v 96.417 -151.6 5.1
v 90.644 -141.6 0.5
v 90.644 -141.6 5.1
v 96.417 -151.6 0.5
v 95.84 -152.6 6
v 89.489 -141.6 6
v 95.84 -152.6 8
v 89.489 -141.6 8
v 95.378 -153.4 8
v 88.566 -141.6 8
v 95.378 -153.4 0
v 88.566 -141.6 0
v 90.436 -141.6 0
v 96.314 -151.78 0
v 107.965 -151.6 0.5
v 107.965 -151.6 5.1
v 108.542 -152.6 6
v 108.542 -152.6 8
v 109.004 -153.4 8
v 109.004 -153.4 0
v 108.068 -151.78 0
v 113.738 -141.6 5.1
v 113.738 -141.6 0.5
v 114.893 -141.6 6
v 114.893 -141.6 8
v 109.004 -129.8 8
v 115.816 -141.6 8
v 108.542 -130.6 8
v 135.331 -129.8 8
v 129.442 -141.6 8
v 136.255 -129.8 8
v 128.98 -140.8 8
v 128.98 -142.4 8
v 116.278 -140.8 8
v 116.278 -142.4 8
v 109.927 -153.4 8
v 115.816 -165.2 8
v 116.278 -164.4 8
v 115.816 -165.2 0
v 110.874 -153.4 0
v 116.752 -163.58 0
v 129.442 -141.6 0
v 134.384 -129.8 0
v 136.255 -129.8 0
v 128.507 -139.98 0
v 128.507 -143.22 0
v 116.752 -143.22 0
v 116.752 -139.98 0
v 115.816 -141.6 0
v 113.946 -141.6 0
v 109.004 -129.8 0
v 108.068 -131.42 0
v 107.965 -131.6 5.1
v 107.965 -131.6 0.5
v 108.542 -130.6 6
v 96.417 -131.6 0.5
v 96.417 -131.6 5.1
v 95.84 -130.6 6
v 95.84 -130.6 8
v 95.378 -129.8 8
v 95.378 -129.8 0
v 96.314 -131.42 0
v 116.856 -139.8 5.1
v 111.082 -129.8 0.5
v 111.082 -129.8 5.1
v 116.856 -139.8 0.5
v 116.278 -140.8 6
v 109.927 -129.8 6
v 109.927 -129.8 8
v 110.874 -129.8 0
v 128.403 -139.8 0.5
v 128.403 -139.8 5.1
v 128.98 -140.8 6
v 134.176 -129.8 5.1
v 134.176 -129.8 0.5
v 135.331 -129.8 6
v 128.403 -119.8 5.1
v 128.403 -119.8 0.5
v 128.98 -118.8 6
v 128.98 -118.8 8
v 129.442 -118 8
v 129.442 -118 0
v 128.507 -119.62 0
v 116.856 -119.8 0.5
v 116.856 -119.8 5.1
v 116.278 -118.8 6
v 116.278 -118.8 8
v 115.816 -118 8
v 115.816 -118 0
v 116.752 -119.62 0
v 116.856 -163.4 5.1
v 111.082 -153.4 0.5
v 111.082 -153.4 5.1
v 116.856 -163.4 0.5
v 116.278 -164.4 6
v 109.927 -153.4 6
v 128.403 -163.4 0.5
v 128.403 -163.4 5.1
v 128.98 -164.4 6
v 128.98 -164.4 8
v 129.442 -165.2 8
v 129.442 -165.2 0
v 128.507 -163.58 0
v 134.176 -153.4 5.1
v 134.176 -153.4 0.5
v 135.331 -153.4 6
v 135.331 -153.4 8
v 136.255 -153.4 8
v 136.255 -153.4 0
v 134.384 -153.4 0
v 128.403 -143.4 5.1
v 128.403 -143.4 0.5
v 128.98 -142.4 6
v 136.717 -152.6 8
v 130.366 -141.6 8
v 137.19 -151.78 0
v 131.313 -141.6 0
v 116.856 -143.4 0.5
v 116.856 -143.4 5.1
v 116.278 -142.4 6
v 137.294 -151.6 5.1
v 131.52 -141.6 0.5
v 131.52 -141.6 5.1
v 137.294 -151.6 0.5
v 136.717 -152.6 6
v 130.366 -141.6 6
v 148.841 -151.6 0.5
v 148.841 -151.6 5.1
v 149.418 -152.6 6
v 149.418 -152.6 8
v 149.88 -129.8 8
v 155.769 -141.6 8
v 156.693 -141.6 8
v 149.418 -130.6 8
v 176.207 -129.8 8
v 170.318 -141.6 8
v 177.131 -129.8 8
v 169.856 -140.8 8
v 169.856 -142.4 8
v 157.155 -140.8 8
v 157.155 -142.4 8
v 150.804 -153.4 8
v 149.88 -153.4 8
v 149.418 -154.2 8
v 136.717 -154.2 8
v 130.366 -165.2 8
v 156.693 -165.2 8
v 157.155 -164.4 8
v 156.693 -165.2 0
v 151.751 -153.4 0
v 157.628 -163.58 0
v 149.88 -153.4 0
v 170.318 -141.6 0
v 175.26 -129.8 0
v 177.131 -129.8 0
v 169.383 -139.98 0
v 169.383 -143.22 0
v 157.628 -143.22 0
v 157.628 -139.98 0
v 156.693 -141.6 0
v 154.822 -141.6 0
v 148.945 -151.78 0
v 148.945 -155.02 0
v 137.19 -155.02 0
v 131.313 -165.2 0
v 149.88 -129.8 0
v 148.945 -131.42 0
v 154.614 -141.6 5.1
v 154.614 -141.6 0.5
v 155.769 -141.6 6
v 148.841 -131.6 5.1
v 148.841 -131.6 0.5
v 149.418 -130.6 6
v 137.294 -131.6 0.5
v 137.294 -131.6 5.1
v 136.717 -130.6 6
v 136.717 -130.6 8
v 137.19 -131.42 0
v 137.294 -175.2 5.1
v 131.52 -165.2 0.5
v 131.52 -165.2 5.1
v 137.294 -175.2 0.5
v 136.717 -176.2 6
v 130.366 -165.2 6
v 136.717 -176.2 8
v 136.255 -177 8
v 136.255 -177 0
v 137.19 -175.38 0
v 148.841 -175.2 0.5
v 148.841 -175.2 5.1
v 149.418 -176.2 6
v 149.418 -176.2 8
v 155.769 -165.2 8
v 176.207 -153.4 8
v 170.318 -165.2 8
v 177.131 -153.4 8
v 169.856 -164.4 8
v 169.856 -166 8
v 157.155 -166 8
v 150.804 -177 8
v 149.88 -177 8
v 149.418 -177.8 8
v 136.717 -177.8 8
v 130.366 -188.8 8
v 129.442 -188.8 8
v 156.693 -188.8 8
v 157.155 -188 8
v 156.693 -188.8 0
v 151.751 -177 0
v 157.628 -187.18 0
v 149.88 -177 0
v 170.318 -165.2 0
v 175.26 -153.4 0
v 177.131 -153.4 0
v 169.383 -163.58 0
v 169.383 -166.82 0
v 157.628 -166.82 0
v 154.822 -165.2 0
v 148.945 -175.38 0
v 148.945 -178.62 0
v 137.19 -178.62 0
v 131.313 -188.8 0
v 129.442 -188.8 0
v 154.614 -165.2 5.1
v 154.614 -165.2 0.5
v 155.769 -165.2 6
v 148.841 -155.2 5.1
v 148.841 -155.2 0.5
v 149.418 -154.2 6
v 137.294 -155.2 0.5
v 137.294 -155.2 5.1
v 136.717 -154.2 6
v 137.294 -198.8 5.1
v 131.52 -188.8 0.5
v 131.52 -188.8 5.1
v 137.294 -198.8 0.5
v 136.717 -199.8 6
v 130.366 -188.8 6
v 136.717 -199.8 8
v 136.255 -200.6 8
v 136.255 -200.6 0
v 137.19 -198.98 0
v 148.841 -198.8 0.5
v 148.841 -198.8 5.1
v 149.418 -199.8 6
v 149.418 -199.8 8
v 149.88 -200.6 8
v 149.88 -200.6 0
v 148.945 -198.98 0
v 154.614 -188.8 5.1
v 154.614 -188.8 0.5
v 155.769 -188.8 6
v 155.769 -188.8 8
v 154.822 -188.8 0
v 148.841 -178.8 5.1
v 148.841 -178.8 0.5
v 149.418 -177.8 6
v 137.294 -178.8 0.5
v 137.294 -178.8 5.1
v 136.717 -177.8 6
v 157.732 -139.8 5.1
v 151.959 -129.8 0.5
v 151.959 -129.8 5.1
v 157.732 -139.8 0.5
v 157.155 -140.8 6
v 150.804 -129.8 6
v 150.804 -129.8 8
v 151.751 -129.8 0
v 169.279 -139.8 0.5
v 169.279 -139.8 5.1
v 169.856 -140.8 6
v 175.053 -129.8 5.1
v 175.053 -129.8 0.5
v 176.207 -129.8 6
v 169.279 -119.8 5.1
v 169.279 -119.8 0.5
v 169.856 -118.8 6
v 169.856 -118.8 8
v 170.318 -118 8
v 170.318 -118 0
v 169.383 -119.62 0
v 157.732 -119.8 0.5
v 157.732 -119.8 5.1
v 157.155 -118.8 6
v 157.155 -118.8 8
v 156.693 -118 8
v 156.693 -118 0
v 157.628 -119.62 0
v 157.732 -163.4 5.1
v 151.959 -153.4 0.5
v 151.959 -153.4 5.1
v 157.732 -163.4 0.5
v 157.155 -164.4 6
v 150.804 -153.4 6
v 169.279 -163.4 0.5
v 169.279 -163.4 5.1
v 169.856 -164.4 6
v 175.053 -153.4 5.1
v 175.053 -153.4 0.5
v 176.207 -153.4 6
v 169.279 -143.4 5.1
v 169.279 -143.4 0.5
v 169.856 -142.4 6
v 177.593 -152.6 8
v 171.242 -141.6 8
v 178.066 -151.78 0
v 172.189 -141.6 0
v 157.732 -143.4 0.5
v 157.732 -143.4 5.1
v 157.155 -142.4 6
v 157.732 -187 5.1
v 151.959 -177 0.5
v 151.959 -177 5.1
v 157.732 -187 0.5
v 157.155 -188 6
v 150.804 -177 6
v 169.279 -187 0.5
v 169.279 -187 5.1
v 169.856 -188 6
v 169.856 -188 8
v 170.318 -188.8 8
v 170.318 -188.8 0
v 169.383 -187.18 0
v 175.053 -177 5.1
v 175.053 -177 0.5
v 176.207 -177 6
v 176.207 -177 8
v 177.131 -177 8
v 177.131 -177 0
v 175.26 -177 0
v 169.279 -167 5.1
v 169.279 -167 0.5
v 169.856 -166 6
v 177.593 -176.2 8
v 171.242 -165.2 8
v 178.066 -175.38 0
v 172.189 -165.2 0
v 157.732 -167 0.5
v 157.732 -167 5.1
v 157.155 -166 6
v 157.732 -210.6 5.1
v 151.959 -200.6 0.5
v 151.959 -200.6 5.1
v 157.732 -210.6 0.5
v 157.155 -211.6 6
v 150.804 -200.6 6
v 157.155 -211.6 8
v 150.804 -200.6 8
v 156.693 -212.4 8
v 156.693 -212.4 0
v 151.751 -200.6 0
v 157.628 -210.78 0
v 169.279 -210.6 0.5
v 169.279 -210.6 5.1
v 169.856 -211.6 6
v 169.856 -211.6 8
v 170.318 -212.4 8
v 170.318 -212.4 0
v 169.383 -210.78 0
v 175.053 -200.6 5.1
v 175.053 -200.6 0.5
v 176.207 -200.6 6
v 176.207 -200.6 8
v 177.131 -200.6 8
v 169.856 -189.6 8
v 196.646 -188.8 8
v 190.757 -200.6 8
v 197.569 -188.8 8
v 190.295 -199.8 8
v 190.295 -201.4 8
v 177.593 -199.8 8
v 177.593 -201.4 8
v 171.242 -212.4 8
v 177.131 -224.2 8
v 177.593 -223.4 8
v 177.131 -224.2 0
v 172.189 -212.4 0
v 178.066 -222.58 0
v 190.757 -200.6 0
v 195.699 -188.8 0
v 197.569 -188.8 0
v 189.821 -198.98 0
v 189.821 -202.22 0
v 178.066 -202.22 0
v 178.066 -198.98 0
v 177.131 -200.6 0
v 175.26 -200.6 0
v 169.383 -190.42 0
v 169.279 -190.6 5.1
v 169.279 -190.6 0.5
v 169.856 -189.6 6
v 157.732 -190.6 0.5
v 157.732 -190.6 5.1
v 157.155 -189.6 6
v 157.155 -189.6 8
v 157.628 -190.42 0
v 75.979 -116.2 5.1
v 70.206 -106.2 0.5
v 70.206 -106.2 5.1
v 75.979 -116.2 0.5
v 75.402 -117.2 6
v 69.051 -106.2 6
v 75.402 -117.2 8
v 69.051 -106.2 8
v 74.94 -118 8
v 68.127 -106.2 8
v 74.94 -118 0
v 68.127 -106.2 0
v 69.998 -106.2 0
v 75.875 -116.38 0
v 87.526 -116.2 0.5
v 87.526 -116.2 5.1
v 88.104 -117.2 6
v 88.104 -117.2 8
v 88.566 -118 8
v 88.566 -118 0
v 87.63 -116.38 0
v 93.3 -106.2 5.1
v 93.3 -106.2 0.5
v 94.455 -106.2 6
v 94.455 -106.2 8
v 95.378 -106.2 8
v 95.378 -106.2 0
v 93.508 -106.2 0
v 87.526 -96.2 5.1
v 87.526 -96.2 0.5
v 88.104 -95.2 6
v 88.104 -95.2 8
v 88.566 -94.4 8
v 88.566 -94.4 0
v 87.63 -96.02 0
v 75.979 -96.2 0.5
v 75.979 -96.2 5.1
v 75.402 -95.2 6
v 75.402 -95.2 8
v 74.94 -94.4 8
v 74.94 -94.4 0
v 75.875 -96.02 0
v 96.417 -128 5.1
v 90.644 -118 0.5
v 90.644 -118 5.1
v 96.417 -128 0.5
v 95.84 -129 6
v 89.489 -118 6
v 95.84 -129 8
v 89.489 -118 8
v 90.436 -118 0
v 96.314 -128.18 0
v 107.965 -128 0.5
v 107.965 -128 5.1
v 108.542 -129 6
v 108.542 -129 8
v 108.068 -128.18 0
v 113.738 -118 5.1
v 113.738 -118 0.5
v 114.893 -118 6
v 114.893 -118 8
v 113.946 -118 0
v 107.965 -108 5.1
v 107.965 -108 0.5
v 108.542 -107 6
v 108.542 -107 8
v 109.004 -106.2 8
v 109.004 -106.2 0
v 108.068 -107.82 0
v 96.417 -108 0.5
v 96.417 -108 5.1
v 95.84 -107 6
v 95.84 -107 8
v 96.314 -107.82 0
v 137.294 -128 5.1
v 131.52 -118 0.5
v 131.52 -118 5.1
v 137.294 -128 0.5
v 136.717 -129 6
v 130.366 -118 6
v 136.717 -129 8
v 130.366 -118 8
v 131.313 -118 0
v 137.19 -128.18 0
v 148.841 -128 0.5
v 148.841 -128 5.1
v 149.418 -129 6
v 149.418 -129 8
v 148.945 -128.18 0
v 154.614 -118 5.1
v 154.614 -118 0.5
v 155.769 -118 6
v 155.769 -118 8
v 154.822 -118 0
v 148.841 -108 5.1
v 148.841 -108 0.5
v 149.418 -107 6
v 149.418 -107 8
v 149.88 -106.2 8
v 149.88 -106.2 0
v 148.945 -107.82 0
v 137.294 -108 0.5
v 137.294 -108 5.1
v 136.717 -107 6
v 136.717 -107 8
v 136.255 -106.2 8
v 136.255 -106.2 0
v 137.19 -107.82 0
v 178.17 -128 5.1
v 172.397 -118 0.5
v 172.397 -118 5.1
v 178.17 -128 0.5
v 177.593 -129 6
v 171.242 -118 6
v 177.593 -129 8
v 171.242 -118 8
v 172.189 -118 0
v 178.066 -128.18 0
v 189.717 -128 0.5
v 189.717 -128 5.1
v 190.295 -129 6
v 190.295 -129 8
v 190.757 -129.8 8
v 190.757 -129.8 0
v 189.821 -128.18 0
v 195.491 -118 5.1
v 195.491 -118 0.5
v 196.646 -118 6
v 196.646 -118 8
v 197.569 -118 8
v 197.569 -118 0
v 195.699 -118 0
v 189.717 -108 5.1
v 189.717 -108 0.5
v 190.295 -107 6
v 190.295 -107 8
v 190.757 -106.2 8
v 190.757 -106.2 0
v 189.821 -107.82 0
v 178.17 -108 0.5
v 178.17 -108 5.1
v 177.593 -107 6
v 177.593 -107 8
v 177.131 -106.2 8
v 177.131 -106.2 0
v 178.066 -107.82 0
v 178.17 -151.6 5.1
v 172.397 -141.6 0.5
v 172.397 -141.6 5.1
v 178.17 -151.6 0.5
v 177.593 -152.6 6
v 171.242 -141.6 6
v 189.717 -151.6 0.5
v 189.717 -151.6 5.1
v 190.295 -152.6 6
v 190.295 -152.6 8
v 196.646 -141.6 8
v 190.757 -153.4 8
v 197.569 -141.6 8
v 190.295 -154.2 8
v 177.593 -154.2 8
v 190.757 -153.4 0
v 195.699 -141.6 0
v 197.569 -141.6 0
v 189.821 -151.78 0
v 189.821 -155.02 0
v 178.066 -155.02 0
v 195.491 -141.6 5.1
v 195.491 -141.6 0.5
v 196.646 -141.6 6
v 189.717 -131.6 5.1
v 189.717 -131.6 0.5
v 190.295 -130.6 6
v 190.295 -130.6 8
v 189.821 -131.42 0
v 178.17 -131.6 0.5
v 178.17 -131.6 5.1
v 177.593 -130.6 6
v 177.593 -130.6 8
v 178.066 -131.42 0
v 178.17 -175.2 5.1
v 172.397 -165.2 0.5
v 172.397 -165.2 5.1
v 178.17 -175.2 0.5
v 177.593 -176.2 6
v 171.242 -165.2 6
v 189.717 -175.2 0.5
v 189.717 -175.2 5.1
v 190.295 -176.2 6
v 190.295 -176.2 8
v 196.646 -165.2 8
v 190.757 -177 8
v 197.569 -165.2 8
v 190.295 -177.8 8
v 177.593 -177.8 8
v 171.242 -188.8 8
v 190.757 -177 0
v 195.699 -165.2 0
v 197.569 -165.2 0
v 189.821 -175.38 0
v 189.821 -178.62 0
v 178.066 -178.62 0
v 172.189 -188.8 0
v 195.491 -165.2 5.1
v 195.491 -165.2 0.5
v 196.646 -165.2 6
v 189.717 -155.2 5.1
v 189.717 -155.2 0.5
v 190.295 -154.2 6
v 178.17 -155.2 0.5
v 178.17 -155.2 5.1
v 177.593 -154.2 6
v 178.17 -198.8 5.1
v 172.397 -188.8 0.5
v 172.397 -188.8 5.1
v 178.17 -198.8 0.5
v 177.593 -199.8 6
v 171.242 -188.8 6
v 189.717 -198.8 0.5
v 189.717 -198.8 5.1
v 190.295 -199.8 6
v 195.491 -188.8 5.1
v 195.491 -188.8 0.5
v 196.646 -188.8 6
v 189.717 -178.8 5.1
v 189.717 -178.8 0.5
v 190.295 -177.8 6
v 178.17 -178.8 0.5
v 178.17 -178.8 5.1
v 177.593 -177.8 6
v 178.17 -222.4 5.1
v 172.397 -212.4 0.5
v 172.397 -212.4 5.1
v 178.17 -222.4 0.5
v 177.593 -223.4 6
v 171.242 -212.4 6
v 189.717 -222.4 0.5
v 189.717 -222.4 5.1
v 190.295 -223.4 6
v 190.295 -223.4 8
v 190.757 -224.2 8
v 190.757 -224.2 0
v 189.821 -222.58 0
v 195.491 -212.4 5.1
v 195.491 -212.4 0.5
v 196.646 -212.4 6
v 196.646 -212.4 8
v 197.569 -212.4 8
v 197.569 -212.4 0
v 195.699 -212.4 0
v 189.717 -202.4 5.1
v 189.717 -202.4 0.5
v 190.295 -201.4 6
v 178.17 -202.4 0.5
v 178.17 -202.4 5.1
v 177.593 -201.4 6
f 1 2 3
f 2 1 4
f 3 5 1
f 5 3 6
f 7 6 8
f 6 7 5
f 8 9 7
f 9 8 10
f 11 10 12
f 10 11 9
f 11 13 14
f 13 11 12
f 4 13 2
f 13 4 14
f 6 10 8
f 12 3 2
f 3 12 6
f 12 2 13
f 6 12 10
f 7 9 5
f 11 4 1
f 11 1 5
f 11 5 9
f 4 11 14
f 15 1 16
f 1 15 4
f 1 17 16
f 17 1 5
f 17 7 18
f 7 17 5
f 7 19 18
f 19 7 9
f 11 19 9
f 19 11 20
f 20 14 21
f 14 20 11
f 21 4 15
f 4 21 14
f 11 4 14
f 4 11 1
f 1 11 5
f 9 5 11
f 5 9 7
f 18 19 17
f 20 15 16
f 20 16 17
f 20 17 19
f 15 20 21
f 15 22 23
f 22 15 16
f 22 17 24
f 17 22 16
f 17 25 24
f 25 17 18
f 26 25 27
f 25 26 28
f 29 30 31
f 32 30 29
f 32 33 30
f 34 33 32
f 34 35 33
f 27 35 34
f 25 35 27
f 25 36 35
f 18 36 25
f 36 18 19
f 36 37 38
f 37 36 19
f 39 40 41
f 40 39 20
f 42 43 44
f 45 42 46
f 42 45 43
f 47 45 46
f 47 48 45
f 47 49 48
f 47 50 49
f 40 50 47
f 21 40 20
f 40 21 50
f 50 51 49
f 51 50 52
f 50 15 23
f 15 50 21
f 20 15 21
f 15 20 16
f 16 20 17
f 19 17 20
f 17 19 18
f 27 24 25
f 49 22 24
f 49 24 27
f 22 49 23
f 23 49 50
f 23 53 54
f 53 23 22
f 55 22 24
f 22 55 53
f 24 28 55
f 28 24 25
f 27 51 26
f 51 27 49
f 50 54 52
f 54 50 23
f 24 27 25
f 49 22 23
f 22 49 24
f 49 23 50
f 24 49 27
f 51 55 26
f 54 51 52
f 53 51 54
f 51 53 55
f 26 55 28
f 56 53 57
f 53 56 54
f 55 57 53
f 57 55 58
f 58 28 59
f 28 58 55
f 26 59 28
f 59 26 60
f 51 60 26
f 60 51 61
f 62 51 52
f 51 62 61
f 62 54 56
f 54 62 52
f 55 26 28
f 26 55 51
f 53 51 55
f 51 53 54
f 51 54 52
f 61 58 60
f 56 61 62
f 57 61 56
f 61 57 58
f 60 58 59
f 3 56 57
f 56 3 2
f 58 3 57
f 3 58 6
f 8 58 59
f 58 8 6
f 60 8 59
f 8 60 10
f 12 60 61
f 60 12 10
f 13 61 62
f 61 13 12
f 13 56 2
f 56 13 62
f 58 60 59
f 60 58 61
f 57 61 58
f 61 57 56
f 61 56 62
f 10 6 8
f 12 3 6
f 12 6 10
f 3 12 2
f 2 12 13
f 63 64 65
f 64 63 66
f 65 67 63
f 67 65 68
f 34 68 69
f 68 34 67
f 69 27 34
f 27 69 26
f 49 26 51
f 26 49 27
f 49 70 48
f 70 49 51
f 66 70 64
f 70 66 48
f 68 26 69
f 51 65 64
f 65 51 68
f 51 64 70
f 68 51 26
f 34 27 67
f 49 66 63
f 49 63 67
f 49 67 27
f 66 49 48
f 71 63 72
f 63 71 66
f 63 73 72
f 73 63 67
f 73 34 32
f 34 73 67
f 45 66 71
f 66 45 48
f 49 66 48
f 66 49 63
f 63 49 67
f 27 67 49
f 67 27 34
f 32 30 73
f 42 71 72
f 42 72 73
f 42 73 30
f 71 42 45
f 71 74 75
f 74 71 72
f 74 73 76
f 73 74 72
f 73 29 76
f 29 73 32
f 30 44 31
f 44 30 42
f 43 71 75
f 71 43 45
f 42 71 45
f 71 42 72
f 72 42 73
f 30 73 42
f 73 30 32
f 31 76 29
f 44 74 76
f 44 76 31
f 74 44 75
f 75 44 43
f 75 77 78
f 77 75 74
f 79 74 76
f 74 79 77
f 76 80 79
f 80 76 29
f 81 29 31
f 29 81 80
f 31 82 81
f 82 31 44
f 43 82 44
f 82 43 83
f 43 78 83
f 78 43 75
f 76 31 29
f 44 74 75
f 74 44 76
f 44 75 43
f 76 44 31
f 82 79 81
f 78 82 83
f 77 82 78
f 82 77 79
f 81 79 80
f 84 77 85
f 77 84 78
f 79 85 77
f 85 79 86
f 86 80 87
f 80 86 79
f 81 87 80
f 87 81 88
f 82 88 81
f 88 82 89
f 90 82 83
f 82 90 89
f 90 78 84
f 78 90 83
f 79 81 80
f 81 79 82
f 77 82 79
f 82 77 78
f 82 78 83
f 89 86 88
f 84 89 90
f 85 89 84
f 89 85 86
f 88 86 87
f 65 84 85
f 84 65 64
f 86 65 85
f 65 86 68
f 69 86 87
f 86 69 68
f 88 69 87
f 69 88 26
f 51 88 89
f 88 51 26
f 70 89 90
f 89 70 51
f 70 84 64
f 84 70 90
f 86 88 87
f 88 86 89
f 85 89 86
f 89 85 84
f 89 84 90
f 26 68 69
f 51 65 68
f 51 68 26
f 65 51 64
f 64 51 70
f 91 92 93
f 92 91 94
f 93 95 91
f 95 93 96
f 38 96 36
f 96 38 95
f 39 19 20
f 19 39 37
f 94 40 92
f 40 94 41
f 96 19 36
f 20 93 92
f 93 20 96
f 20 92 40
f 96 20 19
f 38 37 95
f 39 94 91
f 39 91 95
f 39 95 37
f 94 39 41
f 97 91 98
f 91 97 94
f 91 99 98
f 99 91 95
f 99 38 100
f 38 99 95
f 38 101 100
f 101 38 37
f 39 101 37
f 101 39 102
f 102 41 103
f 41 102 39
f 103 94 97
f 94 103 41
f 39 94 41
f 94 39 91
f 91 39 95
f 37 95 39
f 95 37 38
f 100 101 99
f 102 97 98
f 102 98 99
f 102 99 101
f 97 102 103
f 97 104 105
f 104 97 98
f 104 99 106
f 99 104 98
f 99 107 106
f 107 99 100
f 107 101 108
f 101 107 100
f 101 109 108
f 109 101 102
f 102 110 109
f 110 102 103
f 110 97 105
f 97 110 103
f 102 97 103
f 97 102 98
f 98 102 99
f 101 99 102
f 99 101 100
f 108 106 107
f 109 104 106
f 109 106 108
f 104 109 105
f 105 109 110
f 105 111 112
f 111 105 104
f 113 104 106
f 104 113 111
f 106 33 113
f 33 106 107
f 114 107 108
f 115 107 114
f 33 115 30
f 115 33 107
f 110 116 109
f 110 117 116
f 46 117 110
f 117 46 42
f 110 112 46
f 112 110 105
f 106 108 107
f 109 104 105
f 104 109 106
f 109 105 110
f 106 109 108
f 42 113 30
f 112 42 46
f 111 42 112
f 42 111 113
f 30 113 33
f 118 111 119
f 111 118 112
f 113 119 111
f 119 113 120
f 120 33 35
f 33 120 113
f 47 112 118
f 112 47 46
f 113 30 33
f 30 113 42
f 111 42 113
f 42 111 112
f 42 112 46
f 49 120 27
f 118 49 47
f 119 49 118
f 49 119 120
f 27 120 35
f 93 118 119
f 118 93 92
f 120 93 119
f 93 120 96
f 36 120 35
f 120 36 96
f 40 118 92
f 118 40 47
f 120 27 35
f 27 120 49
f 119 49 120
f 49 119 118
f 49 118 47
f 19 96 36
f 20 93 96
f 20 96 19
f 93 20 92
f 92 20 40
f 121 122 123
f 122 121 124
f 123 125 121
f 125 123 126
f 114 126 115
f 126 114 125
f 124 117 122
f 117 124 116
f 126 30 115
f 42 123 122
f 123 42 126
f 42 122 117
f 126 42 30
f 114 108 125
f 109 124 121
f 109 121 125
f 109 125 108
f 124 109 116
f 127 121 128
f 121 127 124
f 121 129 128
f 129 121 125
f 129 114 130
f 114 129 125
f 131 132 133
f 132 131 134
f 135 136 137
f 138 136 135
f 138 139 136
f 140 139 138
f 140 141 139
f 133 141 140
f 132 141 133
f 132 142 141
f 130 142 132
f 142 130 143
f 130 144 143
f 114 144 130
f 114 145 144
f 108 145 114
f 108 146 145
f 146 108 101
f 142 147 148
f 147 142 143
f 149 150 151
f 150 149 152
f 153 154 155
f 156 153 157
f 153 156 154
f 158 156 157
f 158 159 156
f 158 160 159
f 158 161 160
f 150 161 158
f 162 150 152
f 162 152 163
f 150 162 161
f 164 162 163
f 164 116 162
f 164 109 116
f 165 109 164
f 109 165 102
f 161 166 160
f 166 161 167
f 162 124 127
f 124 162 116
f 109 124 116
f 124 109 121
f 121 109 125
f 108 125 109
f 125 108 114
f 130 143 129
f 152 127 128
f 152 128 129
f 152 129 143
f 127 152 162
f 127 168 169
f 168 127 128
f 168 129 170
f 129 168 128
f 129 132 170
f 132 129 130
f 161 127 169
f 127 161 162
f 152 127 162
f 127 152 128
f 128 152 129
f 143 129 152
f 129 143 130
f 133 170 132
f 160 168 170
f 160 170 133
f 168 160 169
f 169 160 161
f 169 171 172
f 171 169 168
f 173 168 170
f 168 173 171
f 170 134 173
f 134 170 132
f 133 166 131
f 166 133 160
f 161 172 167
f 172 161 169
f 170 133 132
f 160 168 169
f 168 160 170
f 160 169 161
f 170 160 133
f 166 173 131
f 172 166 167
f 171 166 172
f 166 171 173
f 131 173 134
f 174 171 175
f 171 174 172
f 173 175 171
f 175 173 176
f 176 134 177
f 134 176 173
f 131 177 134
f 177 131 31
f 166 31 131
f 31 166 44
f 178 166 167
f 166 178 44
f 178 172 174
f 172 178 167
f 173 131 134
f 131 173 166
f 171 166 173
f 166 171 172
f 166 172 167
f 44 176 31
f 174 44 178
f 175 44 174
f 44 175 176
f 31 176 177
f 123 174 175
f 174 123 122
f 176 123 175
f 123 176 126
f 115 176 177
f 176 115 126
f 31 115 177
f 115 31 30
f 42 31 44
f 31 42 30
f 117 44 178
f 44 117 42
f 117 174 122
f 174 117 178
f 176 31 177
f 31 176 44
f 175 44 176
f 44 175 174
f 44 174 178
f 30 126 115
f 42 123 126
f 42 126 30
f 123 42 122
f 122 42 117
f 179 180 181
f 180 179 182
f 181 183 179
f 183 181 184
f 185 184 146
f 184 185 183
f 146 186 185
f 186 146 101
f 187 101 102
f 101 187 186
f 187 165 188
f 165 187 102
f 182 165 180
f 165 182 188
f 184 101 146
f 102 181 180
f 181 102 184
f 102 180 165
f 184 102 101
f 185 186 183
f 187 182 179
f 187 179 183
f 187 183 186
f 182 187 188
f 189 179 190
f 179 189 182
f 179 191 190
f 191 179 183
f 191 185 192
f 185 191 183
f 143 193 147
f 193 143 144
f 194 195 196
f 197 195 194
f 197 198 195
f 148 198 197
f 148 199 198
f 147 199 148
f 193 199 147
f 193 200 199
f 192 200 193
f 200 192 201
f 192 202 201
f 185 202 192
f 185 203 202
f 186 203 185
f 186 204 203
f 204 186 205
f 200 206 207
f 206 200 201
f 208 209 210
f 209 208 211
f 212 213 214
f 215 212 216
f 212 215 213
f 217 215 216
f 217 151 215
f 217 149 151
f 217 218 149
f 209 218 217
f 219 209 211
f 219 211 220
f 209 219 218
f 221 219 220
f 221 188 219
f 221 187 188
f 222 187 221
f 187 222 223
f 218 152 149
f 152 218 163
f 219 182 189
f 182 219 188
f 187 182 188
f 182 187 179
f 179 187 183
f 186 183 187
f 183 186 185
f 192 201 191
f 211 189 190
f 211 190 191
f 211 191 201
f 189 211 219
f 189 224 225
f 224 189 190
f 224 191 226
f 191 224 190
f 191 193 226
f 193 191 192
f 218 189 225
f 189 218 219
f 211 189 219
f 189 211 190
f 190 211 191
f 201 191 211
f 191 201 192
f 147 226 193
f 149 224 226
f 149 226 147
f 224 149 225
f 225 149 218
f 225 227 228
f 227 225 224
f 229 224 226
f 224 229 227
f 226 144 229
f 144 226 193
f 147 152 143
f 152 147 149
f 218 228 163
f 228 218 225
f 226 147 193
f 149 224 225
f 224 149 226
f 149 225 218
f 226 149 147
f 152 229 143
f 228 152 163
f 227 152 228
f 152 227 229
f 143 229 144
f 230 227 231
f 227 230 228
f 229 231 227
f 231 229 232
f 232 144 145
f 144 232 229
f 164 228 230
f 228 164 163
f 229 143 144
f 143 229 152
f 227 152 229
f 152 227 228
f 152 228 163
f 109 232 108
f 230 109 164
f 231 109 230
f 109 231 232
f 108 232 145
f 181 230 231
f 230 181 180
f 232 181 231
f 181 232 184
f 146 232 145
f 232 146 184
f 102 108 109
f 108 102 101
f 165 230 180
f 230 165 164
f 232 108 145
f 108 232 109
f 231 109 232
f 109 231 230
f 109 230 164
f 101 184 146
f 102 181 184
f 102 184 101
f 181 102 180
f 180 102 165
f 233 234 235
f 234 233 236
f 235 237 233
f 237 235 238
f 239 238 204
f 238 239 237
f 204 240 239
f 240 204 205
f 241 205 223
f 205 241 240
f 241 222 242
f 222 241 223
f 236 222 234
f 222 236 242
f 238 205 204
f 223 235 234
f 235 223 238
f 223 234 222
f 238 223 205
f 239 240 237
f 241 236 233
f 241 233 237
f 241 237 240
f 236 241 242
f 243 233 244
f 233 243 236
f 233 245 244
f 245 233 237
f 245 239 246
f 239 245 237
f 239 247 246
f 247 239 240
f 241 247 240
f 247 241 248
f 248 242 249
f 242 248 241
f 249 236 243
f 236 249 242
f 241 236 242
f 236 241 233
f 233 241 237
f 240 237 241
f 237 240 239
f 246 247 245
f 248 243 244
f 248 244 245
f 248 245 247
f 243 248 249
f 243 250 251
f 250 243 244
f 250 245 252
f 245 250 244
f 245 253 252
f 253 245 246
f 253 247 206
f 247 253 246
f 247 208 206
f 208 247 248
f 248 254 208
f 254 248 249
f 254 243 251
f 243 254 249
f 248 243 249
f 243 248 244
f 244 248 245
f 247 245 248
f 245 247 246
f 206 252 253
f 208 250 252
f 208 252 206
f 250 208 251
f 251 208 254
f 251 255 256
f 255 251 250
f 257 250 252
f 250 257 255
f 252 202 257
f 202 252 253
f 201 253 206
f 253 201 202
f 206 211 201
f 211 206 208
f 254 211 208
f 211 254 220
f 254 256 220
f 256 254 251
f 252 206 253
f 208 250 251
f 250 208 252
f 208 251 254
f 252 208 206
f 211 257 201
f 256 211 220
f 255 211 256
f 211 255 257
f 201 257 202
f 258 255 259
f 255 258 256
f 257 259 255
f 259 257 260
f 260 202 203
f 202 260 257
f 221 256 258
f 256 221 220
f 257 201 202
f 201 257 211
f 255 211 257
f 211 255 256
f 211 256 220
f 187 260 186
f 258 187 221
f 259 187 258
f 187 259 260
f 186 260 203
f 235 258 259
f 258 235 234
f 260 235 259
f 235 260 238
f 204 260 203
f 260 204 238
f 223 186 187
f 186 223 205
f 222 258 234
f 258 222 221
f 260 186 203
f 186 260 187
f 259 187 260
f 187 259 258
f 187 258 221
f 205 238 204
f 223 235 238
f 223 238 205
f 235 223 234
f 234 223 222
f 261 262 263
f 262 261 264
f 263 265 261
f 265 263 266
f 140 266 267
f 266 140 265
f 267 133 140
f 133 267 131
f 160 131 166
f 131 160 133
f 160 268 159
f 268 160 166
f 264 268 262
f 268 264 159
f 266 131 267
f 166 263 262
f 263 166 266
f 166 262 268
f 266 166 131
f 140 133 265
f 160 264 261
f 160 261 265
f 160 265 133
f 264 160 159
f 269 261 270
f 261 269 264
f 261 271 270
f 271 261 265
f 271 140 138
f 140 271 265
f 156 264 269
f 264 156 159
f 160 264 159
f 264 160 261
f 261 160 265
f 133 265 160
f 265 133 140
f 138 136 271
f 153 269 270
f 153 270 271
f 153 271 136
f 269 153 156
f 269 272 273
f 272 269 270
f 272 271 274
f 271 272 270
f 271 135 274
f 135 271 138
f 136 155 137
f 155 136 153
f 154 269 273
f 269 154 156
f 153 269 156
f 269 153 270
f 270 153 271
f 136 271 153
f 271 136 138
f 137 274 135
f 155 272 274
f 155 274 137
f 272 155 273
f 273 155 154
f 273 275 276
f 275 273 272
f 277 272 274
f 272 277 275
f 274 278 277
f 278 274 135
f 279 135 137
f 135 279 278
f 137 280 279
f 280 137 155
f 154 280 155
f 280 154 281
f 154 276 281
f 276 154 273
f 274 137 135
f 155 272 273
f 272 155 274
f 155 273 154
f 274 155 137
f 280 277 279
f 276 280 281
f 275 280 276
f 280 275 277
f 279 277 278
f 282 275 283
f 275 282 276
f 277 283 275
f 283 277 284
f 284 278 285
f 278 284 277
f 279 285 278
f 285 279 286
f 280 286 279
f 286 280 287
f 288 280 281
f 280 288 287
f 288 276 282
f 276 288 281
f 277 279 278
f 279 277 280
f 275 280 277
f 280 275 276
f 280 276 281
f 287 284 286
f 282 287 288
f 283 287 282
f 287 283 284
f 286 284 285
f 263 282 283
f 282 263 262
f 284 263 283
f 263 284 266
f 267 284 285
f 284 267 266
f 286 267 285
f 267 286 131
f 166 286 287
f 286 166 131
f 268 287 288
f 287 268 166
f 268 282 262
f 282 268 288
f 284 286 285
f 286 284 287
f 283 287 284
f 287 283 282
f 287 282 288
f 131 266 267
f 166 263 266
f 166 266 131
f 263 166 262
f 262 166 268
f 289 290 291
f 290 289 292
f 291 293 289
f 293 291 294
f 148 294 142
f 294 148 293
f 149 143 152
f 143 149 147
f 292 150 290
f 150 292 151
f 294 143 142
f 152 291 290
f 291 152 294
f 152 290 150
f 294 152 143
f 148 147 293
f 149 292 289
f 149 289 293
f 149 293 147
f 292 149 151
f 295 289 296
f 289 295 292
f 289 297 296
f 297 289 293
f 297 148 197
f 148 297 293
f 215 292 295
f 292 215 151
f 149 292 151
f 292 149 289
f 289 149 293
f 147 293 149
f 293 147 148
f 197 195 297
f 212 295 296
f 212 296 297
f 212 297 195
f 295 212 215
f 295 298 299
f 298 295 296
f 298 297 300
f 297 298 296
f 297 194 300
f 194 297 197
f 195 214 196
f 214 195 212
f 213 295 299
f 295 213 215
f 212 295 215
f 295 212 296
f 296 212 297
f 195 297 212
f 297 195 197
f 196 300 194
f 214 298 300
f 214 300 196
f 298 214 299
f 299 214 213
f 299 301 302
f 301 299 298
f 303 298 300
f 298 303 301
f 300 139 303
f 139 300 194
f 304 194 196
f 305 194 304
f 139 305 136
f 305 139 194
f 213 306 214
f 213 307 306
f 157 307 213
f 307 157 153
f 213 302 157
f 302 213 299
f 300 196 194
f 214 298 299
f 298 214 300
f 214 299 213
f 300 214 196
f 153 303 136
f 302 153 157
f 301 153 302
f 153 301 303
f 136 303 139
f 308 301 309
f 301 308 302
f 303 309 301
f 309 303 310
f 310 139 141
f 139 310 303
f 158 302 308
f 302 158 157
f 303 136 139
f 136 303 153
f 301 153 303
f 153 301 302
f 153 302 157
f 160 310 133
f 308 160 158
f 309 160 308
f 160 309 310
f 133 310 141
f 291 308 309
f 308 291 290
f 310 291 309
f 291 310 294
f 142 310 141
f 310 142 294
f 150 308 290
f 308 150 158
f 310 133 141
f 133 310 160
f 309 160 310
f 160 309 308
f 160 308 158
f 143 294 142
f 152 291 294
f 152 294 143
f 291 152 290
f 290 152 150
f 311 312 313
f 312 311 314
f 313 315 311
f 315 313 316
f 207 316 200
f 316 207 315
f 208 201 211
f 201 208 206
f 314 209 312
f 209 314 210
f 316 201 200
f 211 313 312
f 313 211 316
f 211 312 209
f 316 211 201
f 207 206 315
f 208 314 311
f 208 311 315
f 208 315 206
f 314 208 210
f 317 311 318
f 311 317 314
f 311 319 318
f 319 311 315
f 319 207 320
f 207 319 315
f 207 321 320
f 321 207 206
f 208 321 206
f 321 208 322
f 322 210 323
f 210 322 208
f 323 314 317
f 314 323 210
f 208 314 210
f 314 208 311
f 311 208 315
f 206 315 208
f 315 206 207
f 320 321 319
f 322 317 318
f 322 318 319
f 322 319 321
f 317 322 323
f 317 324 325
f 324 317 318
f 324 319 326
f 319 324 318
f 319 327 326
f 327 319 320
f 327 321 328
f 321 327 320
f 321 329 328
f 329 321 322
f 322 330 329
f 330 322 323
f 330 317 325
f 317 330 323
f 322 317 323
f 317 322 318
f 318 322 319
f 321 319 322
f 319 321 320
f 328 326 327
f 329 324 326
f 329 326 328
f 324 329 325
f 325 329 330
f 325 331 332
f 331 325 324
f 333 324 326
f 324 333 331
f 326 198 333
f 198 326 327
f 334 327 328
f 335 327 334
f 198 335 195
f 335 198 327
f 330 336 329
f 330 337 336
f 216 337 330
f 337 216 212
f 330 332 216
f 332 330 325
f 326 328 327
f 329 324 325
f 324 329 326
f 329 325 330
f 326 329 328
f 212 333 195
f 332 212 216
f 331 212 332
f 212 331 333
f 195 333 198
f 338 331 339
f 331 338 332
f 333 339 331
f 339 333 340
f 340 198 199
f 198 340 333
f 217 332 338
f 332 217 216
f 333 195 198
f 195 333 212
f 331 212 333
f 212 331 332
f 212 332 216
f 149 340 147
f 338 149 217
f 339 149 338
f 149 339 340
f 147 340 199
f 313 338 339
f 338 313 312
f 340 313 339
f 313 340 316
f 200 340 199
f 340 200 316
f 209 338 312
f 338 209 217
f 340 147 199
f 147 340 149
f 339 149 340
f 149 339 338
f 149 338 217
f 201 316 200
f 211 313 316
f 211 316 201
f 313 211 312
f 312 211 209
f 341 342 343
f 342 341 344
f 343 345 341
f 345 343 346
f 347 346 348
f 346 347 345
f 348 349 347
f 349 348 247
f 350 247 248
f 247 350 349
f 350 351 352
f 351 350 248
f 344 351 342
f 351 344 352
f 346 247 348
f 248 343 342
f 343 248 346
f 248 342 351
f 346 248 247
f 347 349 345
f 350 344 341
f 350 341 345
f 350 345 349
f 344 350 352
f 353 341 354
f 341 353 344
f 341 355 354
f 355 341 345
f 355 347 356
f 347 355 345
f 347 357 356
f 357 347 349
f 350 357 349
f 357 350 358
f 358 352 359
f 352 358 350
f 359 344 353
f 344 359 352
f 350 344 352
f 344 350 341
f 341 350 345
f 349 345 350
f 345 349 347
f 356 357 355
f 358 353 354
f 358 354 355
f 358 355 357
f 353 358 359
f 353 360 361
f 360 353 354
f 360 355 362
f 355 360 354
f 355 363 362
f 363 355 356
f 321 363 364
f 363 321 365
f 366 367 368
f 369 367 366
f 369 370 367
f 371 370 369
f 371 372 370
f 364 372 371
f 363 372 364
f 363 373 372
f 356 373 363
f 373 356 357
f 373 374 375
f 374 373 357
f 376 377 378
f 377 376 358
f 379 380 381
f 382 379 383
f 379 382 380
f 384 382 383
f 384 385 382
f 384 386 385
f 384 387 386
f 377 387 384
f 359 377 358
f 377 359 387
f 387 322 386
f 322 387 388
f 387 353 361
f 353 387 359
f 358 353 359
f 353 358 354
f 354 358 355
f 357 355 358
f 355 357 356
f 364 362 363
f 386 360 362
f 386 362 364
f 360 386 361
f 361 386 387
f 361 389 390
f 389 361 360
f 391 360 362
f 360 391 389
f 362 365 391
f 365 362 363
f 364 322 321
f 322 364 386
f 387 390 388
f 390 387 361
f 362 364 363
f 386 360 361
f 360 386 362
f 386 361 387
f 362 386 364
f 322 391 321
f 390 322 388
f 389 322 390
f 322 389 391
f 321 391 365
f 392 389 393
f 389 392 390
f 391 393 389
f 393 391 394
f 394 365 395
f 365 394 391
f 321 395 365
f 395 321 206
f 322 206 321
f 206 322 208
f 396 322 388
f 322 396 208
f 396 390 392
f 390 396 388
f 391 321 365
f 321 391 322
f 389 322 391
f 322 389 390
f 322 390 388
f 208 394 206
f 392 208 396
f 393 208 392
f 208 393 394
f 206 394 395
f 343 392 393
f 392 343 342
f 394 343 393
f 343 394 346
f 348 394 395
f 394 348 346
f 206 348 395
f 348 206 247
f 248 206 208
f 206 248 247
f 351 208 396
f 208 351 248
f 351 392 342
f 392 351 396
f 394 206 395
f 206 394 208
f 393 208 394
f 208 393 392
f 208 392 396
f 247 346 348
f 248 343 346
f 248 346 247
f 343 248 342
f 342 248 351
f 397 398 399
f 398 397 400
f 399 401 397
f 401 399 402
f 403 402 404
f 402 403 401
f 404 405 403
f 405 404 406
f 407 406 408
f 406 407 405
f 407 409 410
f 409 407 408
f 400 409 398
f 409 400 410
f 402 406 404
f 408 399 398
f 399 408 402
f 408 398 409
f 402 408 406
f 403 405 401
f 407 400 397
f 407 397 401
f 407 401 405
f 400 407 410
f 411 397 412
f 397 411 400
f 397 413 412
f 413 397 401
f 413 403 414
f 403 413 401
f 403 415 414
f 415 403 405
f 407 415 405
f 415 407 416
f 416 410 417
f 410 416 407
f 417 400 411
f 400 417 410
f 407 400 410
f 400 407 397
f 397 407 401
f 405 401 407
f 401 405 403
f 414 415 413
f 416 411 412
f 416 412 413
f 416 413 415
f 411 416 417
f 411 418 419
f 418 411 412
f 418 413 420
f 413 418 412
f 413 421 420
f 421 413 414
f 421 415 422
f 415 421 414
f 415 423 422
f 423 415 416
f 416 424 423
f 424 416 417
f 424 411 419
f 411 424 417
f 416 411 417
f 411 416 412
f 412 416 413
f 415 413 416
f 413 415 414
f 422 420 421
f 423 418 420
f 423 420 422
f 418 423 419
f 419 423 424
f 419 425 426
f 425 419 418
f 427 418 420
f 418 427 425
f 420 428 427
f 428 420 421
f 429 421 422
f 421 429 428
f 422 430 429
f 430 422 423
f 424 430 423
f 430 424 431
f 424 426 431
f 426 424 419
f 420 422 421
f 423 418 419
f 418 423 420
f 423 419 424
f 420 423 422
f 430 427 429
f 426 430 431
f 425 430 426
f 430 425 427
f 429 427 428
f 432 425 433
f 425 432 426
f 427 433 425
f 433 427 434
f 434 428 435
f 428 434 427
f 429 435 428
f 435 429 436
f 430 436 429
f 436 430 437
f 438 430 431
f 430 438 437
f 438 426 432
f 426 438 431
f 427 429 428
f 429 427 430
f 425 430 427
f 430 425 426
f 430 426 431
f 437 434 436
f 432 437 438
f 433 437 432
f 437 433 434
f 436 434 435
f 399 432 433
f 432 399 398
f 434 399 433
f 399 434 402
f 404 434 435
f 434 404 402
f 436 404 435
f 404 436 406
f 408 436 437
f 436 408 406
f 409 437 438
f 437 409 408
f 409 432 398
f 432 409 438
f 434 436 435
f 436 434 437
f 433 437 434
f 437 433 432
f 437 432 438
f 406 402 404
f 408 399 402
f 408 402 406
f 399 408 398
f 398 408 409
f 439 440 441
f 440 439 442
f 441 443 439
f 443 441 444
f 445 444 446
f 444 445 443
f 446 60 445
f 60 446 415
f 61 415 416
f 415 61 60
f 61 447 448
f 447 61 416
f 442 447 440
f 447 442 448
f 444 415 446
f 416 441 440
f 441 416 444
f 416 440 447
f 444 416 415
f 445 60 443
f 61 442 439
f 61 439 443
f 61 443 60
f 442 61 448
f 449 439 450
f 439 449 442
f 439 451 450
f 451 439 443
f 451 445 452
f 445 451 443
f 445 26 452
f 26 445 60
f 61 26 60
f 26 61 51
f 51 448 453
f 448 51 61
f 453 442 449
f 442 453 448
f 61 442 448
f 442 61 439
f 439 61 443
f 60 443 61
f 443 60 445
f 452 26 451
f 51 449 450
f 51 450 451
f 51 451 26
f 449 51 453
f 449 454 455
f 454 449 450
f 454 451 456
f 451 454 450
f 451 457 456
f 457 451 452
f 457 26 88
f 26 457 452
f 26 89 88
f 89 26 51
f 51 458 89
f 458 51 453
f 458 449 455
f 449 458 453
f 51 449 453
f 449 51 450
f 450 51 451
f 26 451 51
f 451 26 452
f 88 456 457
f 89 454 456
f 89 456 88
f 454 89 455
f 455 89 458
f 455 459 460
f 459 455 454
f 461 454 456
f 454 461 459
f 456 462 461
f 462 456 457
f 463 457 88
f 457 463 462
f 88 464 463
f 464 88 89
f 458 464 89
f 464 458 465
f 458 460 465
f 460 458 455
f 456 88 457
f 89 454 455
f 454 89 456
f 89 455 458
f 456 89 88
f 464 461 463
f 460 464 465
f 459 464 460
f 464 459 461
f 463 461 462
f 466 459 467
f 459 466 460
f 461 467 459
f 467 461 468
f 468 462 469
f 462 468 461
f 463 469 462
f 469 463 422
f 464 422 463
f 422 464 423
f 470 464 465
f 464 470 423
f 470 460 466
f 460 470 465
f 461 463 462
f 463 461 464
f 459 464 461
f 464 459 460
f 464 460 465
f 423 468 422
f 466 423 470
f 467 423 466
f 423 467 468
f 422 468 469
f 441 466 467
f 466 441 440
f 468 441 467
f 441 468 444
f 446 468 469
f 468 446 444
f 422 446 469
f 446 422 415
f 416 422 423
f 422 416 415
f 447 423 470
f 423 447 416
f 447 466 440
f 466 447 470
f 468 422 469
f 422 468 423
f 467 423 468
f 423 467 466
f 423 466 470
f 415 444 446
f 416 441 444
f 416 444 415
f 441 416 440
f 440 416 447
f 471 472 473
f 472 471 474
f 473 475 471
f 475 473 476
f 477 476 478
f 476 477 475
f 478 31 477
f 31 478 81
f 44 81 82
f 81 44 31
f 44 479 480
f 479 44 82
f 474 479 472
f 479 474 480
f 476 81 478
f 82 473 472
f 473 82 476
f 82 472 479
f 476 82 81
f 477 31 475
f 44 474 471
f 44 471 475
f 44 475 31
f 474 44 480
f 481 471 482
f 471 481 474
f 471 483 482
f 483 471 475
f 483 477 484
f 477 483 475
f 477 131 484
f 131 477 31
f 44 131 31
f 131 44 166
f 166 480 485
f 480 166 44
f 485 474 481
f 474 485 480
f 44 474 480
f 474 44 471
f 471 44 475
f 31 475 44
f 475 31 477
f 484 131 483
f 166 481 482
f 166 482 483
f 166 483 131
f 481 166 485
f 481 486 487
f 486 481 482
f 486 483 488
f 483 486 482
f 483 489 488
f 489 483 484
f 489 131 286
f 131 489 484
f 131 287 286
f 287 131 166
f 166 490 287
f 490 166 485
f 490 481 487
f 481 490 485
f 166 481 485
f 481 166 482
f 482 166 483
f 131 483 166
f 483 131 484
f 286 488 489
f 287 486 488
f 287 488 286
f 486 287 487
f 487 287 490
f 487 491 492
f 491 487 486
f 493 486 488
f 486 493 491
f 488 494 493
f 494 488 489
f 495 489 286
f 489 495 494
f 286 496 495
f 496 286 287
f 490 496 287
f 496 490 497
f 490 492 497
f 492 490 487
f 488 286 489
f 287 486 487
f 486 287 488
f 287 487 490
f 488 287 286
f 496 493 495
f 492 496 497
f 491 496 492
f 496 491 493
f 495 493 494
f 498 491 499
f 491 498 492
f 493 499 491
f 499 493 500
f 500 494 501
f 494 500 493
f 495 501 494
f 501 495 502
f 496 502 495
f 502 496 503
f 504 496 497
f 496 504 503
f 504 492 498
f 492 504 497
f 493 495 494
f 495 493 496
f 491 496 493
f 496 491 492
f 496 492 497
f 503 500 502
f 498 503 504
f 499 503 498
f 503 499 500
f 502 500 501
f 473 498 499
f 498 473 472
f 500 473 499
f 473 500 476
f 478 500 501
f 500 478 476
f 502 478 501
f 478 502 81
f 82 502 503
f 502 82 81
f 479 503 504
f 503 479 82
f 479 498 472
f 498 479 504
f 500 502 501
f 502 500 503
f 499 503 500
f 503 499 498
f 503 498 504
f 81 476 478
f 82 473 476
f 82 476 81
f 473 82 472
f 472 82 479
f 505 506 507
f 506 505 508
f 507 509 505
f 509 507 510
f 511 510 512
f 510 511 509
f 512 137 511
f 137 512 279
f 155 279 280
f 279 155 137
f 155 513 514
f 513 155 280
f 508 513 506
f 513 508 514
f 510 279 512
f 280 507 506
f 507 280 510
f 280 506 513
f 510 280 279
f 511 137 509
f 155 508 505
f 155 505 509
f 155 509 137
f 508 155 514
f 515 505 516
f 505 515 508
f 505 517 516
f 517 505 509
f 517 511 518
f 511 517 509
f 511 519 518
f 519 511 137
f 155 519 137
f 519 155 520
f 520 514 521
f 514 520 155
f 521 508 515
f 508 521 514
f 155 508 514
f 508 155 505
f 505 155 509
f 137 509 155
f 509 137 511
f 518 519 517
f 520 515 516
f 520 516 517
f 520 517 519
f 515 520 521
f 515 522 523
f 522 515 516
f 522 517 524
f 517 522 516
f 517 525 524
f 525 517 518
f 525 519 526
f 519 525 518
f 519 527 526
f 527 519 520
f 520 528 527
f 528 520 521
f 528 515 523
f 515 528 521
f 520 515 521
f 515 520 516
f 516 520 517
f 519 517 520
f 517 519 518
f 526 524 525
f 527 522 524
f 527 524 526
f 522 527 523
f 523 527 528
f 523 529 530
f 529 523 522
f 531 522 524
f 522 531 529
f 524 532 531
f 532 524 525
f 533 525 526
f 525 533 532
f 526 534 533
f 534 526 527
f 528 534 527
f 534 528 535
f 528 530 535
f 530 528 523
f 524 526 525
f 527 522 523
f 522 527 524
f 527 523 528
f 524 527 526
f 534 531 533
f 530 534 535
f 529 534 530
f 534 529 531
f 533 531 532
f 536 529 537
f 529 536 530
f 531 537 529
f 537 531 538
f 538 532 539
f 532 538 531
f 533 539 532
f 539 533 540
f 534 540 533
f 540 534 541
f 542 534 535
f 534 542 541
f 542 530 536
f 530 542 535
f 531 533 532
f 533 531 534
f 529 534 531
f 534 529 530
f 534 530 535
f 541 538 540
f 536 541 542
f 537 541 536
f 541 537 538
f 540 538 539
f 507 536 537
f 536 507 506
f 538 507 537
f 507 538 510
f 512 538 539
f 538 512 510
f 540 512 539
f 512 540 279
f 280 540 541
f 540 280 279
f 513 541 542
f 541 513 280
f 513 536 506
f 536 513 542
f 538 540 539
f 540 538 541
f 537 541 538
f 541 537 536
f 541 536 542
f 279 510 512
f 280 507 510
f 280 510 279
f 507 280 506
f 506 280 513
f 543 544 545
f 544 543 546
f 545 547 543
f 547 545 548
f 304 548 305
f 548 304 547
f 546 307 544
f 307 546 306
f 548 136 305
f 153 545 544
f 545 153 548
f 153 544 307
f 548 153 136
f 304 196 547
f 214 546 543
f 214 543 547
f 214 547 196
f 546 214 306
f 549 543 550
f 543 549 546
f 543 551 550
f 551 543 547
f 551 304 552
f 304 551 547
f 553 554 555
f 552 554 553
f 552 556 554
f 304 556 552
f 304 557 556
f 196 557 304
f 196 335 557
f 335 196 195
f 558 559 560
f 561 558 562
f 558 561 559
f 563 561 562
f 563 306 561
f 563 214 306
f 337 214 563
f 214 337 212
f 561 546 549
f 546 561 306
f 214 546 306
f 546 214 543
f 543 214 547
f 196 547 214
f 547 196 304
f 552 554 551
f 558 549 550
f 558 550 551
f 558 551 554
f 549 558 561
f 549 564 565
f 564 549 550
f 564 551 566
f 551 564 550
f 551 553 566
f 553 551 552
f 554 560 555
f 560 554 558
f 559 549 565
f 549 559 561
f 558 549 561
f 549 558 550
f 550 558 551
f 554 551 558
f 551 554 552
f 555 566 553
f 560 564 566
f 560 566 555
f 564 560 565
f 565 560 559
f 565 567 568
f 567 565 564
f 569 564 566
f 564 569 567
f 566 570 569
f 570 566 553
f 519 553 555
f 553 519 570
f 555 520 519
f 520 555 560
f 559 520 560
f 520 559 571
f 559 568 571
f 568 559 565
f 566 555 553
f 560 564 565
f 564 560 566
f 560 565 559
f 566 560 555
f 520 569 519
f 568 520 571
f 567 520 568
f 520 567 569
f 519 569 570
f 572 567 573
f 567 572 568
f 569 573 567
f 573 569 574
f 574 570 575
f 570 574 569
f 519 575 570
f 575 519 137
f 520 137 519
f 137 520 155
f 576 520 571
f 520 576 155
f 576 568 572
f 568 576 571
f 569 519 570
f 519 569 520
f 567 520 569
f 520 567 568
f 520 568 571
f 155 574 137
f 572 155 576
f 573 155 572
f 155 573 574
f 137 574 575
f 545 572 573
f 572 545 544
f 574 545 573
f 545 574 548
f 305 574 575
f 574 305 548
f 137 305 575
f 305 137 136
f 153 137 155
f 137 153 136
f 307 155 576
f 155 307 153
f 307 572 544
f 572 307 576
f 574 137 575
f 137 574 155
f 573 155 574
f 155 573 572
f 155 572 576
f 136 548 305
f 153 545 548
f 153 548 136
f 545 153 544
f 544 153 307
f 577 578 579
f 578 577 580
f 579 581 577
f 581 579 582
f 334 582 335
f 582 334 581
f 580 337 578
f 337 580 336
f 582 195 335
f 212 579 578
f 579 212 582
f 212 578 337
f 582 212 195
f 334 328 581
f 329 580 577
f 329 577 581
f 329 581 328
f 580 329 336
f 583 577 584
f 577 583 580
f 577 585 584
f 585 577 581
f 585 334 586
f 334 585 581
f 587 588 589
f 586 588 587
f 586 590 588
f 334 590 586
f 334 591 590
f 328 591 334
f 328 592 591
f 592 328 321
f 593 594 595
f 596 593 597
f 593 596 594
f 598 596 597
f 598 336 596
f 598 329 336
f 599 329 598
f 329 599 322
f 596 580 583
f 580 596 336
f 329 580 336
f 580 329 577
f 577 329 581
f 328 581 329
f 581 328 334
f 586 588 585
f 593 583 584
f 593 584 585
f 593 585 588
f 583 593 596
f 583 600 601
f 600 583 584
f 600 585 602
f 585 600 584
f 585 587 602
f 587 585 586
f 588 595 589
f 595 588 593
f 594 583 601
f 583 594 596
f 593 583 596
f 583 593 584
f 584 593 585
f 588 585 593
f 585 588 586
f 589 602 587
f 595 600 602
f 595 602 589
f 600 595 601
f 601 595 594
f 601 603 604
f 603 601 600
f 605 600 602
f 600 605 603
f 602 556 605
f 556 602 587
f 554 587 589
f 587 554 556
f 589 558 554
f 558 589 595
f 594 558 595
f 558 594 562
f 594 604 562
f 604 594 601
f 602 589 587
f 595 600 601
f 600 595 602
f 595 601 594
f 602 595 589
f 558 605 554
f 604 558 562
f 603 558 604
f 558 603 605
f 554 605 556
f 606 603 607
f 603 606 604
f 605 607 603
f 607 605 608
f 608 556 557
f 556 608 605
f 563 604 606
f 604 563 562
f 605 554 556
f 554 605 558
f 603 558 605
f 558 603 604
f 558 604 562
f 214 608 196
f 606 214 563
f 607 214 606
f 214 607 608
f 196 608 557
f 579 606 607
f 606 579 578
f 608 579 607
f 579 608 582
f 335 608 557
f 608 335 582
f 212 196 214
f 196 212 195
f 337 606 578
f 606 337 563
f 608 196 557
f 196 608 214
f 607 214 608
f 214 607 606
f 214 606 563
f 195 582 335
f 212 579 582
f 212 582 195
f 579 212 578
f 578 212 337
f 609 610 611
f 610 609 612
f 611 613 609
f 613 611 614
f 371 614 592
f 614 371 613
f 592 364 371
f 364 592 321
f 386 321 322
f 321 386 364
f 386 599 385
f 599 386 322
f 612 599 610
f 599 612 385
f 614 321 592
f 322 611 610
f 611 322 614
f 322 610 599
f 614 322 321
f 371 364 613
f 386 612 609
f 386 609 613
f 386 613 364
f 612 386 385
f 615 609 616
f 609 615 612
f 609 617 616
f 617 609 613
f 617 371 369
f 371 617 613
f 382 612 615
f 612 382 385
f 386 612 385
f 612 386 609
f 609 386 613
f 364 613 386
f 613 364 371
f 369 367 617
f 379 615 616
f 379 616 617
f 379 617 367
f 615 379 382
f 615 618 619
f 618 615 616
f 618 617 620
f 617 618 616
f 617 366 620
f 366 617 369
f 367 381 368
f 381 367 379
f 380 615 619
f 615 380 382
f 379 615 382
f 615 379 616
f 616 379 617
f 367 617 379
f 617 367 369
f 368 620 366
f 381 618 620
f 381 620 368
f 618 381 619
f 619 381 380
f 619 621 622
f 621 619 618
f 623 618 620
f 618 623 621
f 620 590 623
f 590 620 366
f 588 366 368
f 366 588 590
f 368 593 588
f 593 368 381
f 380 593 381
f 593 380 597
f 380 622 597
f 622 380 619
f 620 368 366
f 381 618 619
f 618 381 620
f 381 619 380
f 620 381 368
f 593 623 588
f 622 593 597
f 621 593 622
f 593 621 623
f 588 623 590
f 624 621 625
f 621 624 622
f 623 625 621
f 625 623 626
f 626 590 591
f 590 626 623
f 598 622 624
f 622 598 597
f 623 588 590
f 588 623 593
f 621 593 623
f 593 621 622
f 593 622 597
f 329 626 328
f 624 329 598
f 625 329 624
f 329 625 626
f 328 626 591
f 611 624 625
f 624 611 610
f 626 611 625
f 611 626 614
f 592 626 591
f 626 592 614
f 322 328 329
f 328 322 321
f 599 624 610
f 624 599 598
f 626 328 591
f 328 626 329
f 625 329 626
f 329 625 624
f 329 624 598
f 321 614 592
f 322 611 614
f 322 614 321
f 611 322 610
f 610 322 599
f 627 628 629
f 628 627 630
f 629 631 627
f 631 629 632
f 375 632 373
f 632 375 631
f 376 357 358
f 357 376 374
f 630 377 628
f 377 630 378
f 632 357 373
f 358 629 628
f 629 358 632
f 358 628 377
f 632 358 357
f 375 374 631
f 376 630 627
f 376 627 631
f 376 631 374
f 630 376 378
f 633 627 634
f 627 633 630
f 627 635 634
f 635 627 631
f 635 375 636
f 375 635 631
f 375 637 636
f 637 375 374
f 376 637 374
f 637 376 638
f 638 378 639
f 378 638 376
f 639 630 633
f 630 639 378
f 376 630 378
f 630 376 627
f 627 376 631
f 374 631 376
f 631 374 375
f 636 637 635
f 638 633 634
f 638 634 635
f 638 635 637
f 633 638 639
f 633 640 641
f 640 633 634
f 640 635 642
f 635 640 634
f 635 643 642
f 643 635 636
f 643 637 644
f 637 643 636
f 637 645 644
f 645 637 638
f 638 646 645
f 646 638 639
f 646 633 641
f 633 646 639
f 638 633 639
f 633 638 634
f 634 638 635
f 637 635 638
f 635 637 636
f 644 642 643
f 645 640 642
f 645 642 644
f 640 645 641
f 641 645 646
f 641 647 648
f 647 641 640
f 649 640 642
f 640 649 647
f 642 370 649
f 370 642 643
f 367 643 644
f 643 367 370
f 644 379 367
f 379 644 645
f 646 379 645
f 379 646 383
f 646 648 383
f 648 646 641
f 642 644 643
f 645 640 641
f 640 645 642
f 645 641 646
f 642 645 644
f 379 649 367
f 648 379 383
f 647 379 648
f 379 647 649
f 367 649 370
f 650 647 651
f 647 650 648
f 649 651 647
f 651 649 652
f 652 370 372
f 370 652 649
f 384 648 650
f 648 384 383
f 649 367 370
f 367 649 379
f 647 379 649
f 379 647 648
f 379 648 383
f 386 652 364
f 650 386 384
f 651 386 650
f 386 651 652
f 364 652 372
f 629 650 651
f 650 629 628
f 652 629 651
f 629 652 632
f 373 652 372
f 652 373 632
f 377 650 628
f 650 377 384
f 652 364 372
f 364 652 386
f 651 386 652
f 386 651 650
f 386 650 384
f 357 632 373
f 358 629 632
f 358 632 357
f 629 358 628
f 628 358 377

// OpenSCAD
/*[ Hex unit size ]*/

//Depth of the grid
depth = 8;
//Width of the hexagon's hole (flat side to flat side)
hole_width = 20;
//Thickness of the wall forming each hexagon
wall_thickness = 1.8;

/*[ Grid size settings ]*/
max_grid_width=100;
max_grid_height=100;

/*[ Grid shape ]*/
//If checked, ignores custom column sizes and fills grid to maximum size.
fill=false;
flip_staggering=true;
//Amount of hexagons per column. Each entry defines a one column, where the number specifies the amount of hex units that will be generated for the respective column. (Ignored if "fill" is checked)
columns=[9,10,9,10,9,10,9,10,9,10];
include_offsets=false;
//Optional: Offset for each column. This will ignore grid size limits.
column_offsets=[0,-2,-3,-1,0,2,4];
include_gaps=true;
//Optional: Gaps for each column. *NOTE: Change these values in the code. Seems like 2D vector parameters aren't supported by the parameter editor and are always overwritten by the defaults.
column_gaps=[
             [1,2,3,4,5,6,7,8,9], // [], column 1
             [1,2,3,4,5,6,7,8,9,10], // [], column 2
             [1,2,3,4,5,6,7,8,9], // [1,], column 3
             [1,2,3,4,5,6,7,8,9,10], // [1,2], column 4
             [1,2,3,4,6,7,8,9], // [1,2,5], column 5
             [1,2,3,4,5,8,9,10], // [1,2,3,6,7], column 6
             [1,2,3,4,5,8,9], // [1,2,6,7], column 7
             [1,2,3,4,5,10], // [1,2,3,6,7,8,9], column 8
             [1,2,3,4,5], // [1,2,6,7,8,9], column 9
             [1,2,3,4,5], // [1,2,3,6,7,8,9,10], column 10
            ];

/*[ Flat edges ]*/
edge_left = true;
edge_top = true;
edge_right = false;
edge_bottom = false;


//Calculated global variables
//Hexagon dimensions
hex_inner_r = hole_width/sqrt(3); //Inner radius/side length (center to point)
hex_h=hole_width+wall_thickness*2; //Outer side to side distance
hex_s=hex_h/sqrt(3); //Outer radius/side length 
hex_d=2*hex_s; //Outer diameter (point to point)
hex_t=hex_s/2;
//Grid dimensions
max_grid_hexagons_x = fill? floor(max_grid_width/(hex_d-hex_t) +(edge_left?0.5:0) +(edge_right?0.5:0)): len(columns);
max_grid_hexagons_y = fill? floor(max_grid_height/hex_h +(edge_top?0.5:0) +(edge_bottom?0.5:0)): max(columns);
max_grid_hexagons_y_lo = fill? floor(max_grid_height/hex_h - 0.5 +(edge_top?0.5:0) +(edge_bottom?0.5:0)): (max(columns) - 0.5);
total_width = max_grid_hexagons_x * (hex_d-hex_t) + hex_t;
total_height = hex_h*max(max_grid_hexagons_y - 0.5, max_grid_hexagons_y_lo);


translate([edge_left?0:hex_s, edge_top?0:-hex_h/2, 0])
grid(columns, include_offsets?column_offsets:[], include_gaps?column_gaps:[], depth, hole_width, wall_thickness, fill);


module grid(cols, offsets, gaps, height, hole_width, wall_width, fill){    
    for(hcol = [0:fill?max_grid_hexagons_x-1:(len(cols)-1)]){
        for(hrow = [0:(fill?(max_grid_hexagons_y-1):(cols[hcol]-1))]) {
            skip = hcol<len(gaps) && len(search(hrow+1, gaps[hcol])) > 0;          
            if(!skip){
                offset_value=hcol>len(offsets)-1?0:offsets[hcol];
                
                lo = (hcol+(flip_staggering?1:0))%2;
                x = (hex_d-hex_t)*hcol;
                y = -(hex_h)*(hrow + offset_value + lo/2);                
                
                if(hcol<max_grid_hexagons_x && hrow<(lo==0?max_grid_hexagons_y:max_grid_hexagons_y_lo)){
                    left = edge_left && hcol==0;
                    top = edge_top && hrow==0 && hcol%2==(flip_staggering?1:0);
                    right = edge_right && hcol==max_grid_hexagons_x-1;
                    bottom = edge_bottom && hrow+1==(lo==0?max_grid_hexagons_y:max_grid_hexagons_y_lo) && -y+hex_h>total_height+0.001 && -y+hex_h/2<=total_height;
                    translate([x, y, 0]) halfhex(height, hex_s, wall_width, hole_width, left, top, right, bottom);
                }
            }        
        }
    }
}

module halfhex(height, radius, wall_thickness, hole_width, left, top, right, bottom){
    difference(){
        union(){
            hex(height, radius, wall_thickness, hole_width);
            if(left) translate([0, hex_h/2, 0]) wall(depth, wall_thickness, hex_h);
            if(top) translate([hex_d/2, 0, 0]) rotate([0,0,-90]) wall(depth, wall_thickness, hex_d);
            if(right) translate([0, -hex_h/2, 0]) rotate([0,0,180]) wall(depth, wall_thickness, hex_h);
            if(bottom) translate([-hex_d/2, 0, 0]) rotate([0,0,90]) wall(depth, wall_thickness, hex_d);
        }
        if(left) translate([-hex_d/2, -hex_h, 0]) cube([hex_d/2, 2*hex_h, depth]);
        if(top) translate([-hex_d/2, 0, 0]) cube([hex_d, hex_h, depth]);
        if(right) translate([0, -hex_h, 0]) cube([hex_d/2, 2*hex_h, depth]);
        if(bottom) translate([-hex_d/2, -hex_h, 0]) cube([hex_d, hex_h, depth]);
    }
}

module hex(height, radius, wall_thickness, hole_width){
    for(i=[0:5]){
        rotate([0,0,i*60+30])
        translate([-hole_width/2-wall_thickness, radius/2, 0])
        wall(height, wall_thickness, radius);
    }
}

module wall(height, wall_thickness, length){
    hmax=height;
    hmin=5.1;
    hd=2;
    tmax=wall_thickness;
    tmin=wall_thickness-1;   
    ft = 0.18;//fillet thickness
    fh = 0.5;//fillet height
    color("white")
    difference(){
        color([0,0,1])
        rotate([90,0,0])
            linear_extrude(length)   
            polygon([[0,0], [0,hmax], [tmin,hmax], [tmin,hmax-hd], [tmax,hmin], [tmax,fh], [tmax-ft,0]]);
        //Fillet
        rotate([0,0,-30])
            cube([4*tmax, 2*tmax, hmax]);
        mirror([0,1,0])
            translate([0,length,0])
            rotate([0,0,-30])
            cube([4*tmax, 2*tmax, hmax]);
    }
}
